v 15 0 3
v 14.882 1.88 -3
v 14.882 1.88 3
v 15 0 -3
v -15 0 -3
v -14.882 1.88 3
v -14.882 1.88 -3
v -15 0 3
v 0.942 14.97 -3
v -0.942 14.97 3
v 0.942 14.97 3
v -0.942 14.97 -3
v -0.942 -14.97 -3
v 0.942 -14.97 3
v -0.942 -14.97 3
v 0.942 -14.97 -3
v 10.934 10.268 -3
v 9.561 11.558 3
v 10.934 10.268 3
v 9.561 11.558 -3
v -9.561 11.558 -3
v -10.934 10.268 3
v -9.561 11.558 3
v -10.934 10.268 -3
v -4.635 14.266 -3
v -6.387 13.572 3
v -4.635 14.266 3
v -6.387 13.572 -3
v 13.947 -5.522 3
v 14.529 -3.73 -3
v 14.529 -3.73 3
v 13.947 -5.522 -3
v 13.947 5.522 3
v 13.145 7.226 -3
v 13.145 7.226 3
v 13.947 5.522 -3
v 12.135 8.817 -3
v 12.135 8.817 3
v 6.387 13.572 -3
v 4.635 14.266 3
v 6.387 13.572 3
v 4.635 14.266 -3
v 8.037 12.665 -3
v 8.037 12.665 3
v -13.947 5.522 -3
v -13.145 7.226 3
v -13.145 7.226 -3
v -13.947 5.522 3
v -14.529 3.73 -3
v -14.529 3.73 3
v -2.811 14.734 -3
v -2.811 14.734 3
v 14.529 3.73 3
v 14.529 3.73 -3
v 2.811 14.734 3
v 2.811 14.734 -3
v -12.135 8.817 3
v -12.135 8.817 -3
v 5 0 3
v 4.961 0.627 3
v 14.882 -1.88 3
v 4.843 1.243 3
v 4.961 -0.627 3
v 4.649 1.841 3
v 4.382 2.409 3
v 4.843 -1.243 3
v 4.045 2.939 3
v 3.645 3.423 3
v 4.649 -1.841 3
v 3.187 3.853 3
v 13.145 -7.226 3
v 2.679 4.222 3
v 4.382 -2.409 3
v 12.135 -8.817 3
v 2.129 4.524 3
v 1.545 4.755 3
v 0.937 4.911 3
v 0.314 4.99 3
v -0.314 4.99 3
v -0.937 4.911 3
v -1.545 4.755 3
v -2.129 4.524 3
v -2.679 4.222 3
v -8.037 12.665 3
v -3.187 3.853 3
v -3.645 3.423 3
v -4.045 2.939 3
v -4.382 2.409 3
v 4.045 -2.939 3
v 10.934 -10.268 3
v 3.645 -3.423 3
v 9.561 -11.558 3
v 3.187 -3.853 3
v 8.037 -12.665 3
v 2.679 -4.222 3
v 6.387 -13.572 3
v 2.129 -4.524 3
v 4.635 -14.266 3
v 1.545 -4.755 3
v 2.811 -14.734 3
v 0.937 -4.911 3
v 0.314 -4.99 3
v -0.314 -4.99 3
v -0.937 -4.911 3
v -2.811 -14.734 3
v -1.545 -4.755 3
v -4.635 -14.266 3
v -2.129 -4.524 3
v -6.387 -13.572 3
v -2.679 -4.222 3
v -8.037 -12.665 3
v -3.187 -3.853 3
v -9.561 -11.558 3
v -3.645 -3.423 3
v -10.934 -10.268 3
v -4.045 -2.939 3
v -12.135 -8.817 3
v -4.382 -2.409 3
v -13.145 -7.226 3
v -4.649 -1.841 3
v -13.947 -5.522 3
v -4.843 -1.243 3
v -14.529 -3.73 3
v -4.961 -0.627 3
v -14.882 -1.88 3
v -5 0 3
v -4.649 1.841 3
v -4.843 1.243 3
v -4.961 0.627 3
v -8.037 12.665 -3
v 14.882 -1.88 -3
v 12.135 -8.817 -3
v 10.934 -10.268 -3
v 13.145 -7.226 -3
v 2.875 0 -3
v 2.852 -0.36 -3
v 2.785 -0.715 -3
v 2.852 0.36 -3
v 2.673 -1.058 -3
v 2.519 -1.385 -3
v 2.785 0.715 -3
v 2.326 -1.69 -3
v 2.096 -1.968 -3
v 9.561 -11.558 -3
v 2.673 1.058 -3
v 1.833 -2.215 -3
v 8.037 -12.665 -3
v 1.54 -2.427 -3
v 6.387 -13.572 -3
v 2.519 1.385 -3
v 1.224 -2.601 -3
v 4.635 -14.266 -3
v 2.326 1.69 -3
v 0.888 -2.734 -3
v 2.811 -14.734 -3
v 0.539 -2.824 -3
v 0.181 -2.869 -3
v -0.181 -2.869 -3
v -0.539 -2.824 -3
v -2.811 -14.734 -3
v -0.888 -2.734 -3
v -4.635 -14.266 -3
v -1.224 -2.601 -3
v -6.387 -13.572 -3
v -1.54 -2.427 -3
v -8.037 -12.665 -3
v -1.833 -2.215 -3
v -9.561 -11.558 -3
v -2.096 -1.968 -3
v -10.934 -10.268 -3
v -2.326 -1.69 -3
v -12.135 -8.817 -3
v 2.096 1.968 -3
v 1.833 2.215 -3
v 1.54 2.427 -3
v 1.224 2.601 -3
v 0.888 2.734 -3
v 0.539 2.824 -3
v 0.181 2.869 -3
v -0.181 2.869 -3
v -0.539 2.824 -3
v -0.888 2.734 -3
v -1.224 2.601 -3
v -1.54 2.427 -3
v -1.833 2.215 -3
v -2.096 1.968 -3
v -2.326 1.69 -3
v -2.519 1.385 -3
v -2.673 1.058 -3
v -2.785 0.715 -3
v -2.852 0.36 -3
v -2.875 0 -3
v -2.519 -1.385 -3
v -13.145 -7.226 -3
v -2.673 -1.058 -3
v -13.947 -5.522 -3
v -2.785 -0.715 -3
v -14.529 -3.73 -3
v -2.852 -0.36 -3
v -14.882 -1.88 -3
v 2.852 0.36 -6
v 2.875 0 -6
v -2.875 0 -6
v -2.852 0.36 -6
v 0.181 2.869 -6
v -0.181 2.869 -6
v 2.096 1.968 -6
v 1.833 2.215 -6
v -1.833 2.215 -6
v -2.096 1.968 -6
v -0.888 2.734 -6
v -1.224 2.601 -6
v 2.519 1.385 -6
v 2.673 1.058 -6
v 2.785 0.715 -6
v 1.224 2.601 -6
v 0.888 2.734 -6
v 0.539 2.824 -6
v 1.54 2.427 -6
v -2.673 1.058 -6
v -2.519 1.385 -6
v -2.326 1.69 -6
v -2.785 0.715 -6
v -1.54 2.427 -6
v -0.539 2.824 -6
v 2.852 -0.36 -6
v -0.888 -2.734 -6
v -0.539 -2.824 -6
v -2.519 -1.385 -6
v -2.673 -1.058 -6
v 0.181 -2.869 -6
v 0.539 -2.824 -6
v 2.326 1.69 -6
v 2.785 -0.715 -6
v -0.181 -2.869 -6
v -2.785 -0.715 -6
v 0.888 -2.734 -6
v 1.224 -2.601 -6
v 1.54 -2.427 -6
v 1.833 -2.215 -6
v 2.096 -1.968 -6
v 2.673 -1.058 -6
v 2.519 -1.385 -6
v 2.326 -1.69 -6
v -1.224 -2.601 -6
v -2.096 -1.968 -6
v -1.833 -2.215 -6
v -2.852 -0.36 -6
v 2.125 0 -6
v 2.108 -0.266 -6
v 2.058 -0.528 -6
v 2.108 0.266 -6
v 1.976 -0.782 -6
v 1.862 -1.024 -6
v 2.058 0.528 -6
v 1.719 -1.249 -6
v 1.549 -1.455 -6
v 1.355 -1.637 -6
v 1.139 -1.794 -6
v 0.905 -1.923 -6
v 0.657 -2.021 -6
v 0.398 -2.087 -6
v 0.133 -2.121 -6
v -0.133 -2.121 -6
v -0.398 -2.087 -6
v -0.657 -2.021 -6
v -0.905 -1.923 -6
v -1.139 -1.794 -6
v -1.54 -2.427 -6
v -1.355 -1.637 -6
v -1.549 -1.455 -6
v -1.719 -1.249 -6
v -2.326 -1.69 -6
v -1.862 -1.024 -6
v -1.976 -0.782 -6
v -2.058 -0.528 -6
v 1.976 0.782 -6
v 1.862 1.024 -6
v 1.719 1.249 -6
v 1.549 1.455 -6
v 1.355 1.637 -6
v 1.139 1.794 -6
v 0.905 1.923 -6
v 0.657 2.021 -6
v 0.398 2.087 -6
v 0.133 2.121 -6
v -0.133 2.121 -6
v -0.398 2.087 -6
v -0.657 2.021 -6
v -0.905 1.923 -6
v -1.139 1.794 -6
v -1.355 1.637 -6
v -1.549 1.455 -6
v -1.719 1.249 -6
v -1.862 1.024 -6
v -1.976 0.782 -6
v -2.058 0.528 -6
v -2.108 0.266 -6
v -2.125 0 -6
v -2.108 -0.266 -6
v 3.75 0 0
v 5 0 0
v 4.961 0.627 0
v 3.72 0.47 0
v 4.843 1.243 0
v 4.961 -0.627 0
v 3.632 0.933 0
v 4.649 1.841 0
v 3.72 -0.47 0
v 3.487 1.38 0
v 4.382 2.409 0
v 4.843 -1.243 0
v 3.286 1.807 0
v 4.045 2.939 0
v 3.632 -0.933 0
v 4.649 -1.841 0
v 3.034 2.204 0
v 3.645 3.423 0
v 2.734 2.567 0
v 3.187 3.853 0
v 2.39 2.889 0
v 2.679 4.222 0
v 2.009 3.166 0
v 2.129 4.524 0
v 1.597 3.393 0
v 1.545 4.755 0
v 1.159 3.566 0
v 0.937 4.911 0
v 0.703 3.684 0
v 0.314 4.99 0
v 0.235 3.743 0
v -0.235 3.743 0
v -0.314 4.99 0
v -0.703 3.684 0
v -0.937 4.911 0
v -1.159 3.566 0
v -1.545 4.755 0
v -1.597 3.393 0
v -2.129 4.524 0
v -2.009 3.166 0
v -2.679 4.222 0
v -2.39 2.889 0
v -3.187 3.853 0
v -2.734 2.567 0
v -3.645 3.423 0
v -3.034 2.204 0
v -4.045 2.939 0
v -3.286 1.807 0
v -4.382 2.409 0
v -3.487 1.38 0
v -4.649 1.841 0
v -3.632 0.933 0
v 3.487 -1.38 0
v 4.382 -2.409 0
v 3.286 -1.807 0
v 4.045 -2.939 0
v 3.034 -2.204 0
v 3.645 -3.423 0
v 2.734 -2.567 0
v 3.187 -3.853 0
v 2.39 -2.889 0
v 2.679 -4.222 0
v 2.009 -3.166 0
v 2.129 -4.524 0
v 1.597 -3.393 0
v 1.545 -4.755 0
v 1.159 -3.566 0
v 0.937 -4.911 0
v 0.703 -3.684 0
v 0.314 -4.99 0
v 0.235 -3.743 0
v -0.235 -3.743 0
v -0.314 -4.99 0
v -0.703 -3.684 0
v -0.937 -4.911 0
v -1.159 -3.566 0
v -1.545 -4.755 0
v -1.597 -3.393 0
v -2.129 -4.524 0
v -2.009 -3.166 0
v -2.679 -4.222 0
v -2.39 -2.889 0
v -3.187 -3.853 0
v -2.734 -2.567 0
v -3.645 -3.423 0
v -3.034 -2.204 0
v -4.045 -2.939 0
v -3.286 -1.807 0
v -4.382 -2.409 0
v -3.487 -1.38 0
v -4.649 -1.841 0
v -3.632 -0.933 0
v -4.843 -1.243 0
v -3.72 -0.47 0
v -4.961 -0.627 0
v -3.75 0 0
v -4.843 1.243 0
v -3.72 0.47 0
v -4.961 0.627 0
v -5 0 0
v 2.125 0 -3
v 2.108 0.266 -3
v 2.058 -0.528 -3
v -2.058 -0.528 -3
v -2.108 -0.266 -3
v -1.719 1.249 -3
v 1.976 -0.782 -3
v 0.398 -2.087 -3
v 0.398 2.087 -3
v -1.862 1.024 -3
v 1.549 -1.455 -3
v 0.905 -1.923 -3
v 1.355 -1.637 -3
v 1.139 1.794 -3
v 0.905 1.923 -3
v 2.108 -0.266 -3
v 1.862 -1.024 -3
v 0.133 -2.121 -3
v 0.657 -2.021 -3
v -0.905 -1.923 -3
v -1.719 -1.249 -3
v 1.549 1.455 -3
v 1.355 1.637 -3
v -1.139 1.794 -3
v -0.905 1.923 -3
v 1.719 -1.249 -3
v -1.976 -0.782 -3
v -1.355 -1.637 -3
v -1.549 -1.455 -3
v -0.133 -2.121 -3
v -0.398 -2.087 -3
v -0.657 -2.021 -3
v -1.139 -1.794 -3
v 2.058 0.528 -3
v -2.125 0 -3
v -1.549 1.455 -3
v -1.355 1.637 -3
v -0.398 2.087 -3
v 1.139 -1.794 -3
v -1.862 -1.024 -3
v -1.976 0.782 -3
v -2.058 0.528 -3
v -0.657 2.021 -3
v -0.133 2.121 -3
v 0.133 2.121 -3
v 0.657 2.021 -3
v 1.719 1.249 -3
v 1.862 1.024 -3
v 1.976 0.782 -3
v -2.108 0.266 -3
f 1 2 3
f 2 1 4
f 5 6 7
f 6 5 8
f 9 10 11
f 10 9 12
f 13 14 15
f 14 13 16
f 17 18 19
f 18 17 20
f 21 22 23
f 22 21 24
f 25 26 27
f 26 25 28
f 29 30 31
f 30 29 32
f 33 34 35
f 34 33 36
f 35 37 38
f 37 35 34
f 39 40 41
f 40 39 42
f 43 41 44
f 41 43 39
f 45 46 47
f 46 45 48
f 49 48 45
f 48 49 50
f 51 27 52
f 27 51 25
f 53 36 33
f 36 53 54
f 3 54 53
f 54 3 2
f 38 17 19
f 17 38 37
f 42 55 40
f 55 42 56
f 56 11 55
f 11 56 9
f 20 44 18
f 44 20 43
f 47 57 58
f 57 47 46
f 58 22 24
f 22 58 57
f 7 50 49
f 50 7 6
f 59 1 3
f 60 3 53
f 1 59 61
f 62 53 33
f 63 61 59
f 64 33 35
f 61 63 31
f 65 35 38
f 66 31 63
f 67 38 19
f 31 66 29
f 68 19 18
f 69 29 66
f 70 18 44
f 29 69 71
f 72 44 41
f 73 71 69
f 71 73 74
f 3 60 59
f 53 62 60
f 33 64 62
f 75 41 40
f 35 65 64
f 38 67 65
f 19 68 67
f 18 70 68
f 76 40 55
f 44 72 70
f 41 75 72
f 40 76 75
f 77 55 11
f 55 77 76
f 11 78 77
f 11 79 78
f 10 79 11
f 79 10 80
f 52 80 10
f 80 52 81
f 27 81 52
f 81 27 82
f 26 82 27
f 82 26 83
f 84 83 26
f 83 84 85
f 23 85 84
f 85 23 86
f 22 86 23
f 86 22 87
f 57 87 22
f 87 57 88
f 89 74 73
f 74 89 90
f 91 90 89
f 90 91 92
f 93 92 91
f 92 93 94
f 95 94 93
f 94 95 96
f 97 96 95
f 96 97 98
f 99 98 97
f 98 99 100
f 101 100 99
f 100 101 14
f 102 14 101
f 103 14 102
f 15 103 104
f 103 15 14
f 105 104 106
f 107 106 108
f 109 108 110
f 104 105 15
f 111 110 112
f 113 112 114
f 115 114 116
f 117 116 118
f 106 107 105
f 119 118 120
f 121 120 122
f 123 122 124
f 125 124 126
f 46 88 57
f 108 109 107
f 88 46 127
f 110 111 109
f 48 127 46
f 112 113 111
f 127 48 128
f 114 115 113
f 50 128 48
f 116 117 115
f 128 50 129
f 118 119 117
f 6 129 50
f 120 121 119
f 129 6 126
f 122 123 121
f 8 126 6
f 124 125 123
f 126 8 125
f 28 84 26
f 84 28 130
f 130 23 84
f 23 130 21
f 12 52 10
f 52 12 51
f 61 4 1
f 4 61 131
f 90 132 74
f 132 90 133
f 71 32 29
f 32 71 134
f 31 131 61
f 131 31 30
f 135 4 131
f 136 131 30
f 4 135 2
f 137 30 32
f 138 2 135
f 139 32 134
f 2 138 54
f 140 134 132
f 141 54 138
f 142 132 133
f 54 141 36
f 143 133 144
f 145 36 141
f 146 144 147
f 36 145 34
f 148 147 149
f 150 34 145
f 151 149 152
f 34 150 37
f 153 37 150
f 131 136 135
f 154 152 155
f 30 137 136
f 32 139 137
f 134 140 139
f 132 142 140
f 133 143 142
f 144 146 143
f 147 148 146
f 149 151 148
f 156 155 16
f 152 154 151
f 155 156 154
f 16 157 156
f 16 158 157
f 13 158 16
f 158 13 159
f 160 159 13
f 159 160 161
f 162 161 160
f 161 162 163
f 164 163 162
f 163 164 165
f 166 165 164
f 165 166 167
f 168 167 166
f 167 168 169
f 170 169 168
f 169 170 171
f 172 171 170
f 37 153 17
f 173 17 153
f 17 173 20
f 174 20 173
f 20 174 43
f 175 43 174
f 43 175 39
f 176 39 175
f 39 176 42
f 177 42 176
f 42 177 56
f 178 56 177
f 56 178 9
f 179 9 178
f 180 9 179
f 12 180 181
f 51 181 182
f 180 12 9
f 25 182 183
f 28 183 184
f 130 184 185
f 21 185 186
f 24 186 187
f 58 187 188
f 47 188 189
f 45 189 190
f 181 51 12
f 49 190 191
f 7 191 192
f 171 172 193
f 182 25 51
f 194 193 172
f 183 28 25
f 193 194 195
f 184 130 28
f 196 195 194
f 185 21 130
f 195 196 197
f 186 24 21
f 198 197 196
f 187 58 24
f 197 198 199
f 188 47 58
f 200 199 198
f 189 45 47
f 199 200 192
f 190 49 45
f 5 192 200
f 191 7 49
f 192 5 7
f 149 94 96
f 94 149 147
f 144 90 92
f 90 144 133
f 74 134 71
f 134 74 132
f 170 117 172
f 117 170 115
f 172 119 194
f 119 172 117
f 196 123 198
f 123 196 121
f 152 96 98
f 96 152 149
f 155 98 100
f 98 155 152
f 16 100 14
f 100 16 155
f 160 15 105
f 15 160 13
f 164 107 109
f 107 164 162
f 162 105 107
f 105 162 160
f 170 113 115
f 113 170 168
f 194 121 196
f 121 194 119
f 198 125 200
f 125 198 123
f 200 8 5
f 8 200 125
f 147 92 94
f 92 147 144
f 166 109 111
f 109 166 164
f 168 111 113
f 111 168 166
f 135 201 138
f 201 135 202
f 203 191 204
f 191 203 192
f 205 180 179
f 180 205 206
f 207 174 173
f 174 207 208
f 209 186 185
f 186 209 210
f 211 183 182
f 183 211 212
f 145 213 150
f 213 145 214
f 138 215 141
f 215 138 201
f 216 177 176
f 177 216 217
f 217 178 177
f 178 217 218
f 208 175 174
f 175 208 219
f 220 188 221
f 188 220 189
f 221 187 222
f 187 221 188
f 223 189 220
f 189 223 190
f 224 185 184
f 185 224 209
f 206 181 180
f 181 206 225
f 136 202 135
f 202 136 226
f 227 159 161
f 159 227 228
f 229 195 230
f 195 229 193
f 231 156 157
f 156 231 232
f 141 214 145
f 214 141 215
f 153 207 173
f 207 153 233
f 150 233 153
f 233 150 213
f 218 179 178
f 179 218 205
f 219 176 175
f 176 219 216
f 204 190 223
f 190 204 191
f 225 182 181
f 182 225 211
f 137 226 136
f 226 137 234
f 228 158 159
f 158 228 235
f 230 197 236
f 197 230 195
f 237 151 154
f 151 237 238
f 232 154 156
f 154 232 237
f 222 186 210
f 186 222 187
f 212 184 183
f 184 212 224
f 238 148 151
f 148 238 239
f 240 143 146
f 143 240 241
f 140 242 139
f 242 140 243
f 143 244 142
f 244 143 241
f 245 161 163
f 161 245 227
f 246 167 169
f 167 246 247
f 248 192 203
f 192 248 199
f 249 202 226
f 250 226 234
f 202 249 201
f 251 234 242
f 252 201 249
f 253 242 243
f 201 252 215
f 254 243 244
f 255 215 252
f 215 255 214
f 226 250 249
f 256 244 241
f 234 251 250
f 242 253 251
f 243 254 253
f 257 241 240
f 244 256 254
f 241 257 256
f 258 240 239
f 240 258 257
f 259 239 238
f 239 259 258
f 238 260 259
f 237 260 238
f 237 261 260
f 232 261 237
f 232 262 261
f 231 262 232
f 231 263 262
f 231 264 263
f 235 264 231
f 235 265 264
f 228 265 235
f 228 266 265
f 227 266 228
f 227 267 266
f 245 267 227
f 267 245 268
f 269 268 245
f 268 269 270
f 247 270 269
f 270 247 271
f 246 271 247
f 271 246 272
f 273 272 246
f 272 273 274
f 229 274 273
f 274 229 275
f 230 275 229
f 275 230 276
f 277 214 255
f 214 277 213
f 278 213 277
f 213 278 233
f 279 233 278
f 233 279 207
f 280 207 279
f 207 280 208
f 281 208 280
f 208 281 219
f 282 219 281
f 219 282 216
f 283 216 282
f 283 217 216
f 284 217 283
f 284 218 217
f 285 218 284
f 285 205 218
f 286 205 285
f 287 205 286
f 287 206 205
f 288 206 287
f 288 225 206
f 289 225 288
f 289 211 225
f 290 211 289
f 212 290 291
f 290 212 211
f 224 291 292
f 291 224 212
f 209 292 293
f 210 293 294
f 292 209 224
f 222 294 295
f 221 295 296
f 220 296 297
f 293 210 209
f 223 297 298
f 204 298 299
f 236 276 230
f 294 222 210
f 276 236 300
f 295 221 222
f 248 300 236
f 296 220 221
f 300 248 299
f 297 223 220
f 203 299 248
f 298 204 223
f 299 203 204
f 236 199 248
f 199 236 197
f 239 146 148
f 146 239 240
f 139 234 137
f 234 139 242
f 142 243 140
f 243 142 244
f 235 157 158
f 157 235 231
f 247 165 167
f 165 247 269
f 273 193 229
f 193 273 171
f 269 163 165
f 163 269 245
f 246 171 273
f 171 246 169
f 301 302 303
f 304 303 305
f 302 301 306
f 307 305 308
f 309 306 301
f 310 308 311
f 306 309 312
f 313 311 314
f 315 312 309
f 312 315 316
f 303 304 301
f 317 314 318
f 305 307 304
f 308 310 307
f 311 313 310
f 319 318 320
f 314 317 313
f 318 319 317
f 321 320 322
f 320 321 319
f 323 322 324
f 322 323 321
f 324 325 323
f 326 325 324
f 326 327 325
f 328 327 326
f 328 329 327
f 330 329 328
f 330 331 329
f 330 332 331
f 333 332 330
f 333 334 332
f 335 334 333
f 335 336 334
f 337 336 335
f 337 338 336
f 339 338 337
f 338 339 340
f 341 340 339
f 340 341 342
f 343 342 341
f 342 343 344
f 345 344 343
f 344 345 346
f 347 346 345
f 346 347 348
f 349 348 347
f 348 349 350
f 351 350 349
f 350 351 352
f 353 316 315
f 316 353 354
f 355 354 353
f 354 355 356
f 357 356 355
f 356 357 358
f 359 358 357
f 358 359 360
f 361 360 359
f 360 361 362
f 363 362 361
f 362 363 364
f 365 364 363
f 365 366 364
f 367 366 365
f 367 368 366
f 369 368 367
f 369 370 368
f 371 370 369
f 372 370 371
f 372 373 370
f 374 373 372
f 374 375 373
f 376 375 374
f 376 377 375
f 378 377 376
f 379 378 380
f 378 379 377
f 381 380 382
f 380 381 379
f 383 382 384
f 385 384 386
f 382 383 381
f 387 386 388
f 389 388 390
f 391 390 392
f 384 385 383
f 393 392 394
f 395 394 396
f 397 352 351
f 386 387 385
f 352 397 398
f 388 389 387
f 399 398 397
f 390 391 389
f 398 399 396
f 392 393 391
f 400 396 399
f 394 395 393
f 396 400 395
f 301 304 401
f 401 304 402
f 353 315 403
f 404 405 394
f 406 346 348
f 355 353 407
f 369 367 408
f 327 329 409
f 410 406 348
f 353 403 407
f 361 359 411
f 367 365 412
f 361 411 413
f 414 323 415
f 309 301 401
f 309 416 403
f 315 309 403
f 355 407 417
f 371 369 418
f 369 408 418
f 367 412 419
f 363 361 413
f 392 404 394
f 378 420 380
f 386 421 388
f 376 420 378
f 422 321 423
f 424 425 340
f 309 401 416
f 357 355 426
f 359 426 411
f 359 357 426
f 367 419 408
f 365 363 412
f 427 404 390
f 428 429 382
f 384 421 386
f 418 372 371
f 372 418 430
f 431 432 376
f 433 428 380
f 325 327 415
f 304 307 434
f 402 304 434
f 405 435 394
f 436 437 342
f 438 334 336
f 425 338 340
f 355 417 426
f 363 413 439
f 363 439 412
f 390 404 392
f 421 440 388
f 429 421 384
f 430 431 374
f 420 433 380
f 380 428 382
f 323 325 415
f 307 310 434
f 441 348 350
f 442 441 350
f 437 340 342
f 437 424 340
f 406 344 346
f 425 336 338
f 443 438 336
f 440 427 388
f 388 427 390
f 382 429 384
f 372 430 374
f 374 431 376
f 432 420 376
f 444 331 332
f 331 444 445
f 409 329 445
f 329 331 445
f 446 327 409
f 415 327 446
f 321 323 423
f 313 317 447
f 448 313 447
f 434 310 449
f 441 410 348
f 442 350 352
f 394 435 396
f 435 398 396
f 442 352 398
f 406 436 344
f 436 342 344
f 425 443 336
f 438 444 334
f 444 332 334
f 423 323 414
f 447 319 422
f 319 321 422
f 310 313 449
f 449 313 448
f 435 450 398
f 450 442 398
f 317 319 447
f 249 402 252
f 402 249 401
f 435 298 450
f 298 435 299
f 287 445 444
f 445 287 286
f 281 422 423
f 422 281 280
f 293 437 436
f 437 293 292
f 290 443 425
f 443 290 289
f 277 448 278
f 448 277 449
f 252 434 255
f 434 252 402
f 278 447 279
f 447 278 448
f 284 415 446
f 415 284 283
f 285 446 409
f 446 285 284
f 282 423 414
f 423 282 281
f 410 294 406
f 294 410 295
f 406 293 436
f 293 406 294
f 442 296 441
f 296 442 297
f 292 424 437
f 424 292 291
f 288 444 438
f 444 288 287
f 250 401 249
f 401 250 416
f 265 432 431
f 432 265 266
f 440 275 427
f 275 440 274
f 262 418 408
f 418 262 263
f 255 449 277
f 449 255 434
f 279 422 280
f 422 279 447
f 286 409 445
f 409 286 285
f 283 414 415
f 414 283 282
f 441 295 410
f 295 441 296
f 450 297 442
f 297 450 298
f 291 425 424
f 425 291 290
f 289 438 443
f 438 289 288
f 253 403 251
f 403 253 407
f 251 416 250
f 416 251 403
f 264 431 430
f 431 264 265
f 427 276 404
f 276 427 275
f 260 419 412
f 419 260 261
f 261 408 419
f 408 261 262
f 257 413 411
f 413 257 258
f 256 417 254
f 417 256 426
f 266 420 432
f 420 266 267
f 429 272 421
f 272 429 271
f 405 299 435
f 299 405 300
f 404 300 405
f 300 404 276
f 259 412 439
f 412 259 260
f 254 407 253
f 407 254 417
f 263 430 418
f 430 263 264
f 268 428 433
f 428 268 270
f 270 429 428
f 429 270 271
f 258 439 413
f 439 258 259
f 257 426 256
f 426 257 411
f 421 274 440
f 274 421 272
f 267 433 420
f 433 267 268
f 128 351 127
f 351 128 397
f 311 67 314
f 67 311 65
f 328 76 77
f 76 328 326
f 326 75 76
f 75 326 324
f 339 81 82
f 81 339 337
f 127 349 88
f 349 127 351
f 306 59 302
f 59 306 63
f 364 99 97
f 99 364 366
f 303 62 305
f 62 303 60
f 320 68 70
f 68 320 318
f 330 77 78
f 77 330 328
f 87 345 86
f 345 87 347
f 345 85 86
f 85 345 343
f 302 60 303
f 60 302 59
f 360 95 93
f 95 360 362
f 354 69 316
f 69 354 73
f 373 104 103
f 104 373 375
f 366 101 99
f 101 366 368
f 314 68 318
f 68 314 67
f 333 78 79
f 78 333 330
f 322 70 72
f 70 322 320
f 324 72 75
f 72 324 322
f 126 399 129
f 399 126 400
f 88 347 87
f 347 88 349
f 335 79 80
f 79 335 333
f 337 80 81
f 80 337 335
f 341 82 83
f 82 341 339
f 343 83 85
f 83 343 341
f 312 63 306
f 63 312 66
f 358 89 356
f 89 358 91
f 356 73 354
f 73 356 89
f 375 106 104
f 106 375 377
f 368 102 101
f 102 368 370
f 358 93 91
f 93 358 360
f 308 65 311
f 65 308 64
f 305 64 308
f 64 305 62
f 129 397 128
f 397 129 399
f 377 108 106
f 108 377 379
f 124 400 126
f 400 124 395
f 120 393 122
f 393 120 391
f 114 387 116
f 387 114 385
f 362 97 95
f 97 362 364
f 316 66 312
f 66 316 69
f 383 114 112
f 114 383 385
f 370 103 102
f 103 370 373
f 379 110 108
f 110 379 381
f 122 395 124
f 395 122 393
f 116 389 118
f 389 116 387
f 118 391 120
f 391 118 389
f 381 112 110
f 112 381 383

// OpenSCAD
$fn = 50;

difference() {
	union() {
		translate(v = [0, 0, -3.0]) {
			cylinder(h = 6, r = 15.0);
		}
		#translate(v = [0, 0, -6.0]) {
			cylinder(h = 6, r = 2.875);
		}
	}
	union() {
		translate(v = [0, 0, 0]) {
			rotate(a = [0, 0, 0]) {
				difference() {
					union() {
						translate(v = [0, 0, -6.0]) {
							cylinder(h = 6, r = 2.0);
						}
						translate(v = [0, 0, -3]) {
							cylinder(h = 3, r1 = 2.125, r2 = 3.75);
						}
						translate(v = [0, 0, -6.0]) {
							cylinder(h = 6, r = 2.125);
						}
						translate(v = [0, 0, -6.0]) {
							cylinder(h = 6, r = 2.0);
						}
					}
					union();
				}
			}
		}
		#cylinder(h = 3, r = 5.0);
	}
}
